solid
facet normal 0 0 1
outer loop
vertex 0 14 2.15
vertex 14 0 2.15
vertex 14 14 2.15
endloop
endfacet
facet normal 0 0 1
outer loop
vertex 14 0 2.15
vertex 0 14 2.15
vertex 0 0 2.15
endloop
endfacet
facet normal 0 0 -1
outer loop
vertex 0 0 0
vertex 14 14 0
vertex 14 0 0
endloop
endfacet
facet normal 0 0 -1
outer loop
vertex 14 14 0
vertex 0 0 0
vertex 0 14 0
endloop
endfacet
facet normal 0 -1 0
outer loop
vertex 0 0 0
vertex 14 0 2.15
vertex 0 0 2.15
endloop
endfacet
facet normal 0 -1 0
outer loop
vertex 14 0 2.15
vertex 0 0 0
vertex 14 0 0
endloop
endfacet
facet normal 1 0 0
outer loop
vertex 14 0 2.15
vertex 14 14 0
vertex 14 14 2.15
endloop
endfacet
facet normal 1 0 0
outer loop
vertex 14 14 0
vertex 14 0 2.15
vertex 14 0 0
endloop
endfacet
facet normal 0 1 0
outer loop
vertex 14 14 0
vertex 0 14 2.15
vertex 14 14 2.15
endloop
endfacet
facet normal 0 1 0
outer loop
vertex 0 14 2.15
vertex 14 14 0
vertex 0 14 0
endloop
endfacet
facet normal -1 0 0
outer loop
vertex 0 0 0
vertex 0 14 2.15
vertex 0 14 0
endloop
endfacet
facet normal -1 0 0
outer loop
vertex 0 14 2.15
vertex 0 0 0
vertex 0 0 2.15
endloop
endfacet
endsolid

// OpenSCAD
/* Warning, this is a very basic generator with a lot of approximation 
input data : [MQFP, AWC, 14x14x2.15mm, 80, , A, C04-25173A]
generated by com.zoubworld.electronics.cad.model3d.Basic
Date : Sun Feb 15 10:50:49 CET 2026
*/

//body
color("black")
translate([0,0,0])
cube([14.0,14.0,2.15], center=false);
